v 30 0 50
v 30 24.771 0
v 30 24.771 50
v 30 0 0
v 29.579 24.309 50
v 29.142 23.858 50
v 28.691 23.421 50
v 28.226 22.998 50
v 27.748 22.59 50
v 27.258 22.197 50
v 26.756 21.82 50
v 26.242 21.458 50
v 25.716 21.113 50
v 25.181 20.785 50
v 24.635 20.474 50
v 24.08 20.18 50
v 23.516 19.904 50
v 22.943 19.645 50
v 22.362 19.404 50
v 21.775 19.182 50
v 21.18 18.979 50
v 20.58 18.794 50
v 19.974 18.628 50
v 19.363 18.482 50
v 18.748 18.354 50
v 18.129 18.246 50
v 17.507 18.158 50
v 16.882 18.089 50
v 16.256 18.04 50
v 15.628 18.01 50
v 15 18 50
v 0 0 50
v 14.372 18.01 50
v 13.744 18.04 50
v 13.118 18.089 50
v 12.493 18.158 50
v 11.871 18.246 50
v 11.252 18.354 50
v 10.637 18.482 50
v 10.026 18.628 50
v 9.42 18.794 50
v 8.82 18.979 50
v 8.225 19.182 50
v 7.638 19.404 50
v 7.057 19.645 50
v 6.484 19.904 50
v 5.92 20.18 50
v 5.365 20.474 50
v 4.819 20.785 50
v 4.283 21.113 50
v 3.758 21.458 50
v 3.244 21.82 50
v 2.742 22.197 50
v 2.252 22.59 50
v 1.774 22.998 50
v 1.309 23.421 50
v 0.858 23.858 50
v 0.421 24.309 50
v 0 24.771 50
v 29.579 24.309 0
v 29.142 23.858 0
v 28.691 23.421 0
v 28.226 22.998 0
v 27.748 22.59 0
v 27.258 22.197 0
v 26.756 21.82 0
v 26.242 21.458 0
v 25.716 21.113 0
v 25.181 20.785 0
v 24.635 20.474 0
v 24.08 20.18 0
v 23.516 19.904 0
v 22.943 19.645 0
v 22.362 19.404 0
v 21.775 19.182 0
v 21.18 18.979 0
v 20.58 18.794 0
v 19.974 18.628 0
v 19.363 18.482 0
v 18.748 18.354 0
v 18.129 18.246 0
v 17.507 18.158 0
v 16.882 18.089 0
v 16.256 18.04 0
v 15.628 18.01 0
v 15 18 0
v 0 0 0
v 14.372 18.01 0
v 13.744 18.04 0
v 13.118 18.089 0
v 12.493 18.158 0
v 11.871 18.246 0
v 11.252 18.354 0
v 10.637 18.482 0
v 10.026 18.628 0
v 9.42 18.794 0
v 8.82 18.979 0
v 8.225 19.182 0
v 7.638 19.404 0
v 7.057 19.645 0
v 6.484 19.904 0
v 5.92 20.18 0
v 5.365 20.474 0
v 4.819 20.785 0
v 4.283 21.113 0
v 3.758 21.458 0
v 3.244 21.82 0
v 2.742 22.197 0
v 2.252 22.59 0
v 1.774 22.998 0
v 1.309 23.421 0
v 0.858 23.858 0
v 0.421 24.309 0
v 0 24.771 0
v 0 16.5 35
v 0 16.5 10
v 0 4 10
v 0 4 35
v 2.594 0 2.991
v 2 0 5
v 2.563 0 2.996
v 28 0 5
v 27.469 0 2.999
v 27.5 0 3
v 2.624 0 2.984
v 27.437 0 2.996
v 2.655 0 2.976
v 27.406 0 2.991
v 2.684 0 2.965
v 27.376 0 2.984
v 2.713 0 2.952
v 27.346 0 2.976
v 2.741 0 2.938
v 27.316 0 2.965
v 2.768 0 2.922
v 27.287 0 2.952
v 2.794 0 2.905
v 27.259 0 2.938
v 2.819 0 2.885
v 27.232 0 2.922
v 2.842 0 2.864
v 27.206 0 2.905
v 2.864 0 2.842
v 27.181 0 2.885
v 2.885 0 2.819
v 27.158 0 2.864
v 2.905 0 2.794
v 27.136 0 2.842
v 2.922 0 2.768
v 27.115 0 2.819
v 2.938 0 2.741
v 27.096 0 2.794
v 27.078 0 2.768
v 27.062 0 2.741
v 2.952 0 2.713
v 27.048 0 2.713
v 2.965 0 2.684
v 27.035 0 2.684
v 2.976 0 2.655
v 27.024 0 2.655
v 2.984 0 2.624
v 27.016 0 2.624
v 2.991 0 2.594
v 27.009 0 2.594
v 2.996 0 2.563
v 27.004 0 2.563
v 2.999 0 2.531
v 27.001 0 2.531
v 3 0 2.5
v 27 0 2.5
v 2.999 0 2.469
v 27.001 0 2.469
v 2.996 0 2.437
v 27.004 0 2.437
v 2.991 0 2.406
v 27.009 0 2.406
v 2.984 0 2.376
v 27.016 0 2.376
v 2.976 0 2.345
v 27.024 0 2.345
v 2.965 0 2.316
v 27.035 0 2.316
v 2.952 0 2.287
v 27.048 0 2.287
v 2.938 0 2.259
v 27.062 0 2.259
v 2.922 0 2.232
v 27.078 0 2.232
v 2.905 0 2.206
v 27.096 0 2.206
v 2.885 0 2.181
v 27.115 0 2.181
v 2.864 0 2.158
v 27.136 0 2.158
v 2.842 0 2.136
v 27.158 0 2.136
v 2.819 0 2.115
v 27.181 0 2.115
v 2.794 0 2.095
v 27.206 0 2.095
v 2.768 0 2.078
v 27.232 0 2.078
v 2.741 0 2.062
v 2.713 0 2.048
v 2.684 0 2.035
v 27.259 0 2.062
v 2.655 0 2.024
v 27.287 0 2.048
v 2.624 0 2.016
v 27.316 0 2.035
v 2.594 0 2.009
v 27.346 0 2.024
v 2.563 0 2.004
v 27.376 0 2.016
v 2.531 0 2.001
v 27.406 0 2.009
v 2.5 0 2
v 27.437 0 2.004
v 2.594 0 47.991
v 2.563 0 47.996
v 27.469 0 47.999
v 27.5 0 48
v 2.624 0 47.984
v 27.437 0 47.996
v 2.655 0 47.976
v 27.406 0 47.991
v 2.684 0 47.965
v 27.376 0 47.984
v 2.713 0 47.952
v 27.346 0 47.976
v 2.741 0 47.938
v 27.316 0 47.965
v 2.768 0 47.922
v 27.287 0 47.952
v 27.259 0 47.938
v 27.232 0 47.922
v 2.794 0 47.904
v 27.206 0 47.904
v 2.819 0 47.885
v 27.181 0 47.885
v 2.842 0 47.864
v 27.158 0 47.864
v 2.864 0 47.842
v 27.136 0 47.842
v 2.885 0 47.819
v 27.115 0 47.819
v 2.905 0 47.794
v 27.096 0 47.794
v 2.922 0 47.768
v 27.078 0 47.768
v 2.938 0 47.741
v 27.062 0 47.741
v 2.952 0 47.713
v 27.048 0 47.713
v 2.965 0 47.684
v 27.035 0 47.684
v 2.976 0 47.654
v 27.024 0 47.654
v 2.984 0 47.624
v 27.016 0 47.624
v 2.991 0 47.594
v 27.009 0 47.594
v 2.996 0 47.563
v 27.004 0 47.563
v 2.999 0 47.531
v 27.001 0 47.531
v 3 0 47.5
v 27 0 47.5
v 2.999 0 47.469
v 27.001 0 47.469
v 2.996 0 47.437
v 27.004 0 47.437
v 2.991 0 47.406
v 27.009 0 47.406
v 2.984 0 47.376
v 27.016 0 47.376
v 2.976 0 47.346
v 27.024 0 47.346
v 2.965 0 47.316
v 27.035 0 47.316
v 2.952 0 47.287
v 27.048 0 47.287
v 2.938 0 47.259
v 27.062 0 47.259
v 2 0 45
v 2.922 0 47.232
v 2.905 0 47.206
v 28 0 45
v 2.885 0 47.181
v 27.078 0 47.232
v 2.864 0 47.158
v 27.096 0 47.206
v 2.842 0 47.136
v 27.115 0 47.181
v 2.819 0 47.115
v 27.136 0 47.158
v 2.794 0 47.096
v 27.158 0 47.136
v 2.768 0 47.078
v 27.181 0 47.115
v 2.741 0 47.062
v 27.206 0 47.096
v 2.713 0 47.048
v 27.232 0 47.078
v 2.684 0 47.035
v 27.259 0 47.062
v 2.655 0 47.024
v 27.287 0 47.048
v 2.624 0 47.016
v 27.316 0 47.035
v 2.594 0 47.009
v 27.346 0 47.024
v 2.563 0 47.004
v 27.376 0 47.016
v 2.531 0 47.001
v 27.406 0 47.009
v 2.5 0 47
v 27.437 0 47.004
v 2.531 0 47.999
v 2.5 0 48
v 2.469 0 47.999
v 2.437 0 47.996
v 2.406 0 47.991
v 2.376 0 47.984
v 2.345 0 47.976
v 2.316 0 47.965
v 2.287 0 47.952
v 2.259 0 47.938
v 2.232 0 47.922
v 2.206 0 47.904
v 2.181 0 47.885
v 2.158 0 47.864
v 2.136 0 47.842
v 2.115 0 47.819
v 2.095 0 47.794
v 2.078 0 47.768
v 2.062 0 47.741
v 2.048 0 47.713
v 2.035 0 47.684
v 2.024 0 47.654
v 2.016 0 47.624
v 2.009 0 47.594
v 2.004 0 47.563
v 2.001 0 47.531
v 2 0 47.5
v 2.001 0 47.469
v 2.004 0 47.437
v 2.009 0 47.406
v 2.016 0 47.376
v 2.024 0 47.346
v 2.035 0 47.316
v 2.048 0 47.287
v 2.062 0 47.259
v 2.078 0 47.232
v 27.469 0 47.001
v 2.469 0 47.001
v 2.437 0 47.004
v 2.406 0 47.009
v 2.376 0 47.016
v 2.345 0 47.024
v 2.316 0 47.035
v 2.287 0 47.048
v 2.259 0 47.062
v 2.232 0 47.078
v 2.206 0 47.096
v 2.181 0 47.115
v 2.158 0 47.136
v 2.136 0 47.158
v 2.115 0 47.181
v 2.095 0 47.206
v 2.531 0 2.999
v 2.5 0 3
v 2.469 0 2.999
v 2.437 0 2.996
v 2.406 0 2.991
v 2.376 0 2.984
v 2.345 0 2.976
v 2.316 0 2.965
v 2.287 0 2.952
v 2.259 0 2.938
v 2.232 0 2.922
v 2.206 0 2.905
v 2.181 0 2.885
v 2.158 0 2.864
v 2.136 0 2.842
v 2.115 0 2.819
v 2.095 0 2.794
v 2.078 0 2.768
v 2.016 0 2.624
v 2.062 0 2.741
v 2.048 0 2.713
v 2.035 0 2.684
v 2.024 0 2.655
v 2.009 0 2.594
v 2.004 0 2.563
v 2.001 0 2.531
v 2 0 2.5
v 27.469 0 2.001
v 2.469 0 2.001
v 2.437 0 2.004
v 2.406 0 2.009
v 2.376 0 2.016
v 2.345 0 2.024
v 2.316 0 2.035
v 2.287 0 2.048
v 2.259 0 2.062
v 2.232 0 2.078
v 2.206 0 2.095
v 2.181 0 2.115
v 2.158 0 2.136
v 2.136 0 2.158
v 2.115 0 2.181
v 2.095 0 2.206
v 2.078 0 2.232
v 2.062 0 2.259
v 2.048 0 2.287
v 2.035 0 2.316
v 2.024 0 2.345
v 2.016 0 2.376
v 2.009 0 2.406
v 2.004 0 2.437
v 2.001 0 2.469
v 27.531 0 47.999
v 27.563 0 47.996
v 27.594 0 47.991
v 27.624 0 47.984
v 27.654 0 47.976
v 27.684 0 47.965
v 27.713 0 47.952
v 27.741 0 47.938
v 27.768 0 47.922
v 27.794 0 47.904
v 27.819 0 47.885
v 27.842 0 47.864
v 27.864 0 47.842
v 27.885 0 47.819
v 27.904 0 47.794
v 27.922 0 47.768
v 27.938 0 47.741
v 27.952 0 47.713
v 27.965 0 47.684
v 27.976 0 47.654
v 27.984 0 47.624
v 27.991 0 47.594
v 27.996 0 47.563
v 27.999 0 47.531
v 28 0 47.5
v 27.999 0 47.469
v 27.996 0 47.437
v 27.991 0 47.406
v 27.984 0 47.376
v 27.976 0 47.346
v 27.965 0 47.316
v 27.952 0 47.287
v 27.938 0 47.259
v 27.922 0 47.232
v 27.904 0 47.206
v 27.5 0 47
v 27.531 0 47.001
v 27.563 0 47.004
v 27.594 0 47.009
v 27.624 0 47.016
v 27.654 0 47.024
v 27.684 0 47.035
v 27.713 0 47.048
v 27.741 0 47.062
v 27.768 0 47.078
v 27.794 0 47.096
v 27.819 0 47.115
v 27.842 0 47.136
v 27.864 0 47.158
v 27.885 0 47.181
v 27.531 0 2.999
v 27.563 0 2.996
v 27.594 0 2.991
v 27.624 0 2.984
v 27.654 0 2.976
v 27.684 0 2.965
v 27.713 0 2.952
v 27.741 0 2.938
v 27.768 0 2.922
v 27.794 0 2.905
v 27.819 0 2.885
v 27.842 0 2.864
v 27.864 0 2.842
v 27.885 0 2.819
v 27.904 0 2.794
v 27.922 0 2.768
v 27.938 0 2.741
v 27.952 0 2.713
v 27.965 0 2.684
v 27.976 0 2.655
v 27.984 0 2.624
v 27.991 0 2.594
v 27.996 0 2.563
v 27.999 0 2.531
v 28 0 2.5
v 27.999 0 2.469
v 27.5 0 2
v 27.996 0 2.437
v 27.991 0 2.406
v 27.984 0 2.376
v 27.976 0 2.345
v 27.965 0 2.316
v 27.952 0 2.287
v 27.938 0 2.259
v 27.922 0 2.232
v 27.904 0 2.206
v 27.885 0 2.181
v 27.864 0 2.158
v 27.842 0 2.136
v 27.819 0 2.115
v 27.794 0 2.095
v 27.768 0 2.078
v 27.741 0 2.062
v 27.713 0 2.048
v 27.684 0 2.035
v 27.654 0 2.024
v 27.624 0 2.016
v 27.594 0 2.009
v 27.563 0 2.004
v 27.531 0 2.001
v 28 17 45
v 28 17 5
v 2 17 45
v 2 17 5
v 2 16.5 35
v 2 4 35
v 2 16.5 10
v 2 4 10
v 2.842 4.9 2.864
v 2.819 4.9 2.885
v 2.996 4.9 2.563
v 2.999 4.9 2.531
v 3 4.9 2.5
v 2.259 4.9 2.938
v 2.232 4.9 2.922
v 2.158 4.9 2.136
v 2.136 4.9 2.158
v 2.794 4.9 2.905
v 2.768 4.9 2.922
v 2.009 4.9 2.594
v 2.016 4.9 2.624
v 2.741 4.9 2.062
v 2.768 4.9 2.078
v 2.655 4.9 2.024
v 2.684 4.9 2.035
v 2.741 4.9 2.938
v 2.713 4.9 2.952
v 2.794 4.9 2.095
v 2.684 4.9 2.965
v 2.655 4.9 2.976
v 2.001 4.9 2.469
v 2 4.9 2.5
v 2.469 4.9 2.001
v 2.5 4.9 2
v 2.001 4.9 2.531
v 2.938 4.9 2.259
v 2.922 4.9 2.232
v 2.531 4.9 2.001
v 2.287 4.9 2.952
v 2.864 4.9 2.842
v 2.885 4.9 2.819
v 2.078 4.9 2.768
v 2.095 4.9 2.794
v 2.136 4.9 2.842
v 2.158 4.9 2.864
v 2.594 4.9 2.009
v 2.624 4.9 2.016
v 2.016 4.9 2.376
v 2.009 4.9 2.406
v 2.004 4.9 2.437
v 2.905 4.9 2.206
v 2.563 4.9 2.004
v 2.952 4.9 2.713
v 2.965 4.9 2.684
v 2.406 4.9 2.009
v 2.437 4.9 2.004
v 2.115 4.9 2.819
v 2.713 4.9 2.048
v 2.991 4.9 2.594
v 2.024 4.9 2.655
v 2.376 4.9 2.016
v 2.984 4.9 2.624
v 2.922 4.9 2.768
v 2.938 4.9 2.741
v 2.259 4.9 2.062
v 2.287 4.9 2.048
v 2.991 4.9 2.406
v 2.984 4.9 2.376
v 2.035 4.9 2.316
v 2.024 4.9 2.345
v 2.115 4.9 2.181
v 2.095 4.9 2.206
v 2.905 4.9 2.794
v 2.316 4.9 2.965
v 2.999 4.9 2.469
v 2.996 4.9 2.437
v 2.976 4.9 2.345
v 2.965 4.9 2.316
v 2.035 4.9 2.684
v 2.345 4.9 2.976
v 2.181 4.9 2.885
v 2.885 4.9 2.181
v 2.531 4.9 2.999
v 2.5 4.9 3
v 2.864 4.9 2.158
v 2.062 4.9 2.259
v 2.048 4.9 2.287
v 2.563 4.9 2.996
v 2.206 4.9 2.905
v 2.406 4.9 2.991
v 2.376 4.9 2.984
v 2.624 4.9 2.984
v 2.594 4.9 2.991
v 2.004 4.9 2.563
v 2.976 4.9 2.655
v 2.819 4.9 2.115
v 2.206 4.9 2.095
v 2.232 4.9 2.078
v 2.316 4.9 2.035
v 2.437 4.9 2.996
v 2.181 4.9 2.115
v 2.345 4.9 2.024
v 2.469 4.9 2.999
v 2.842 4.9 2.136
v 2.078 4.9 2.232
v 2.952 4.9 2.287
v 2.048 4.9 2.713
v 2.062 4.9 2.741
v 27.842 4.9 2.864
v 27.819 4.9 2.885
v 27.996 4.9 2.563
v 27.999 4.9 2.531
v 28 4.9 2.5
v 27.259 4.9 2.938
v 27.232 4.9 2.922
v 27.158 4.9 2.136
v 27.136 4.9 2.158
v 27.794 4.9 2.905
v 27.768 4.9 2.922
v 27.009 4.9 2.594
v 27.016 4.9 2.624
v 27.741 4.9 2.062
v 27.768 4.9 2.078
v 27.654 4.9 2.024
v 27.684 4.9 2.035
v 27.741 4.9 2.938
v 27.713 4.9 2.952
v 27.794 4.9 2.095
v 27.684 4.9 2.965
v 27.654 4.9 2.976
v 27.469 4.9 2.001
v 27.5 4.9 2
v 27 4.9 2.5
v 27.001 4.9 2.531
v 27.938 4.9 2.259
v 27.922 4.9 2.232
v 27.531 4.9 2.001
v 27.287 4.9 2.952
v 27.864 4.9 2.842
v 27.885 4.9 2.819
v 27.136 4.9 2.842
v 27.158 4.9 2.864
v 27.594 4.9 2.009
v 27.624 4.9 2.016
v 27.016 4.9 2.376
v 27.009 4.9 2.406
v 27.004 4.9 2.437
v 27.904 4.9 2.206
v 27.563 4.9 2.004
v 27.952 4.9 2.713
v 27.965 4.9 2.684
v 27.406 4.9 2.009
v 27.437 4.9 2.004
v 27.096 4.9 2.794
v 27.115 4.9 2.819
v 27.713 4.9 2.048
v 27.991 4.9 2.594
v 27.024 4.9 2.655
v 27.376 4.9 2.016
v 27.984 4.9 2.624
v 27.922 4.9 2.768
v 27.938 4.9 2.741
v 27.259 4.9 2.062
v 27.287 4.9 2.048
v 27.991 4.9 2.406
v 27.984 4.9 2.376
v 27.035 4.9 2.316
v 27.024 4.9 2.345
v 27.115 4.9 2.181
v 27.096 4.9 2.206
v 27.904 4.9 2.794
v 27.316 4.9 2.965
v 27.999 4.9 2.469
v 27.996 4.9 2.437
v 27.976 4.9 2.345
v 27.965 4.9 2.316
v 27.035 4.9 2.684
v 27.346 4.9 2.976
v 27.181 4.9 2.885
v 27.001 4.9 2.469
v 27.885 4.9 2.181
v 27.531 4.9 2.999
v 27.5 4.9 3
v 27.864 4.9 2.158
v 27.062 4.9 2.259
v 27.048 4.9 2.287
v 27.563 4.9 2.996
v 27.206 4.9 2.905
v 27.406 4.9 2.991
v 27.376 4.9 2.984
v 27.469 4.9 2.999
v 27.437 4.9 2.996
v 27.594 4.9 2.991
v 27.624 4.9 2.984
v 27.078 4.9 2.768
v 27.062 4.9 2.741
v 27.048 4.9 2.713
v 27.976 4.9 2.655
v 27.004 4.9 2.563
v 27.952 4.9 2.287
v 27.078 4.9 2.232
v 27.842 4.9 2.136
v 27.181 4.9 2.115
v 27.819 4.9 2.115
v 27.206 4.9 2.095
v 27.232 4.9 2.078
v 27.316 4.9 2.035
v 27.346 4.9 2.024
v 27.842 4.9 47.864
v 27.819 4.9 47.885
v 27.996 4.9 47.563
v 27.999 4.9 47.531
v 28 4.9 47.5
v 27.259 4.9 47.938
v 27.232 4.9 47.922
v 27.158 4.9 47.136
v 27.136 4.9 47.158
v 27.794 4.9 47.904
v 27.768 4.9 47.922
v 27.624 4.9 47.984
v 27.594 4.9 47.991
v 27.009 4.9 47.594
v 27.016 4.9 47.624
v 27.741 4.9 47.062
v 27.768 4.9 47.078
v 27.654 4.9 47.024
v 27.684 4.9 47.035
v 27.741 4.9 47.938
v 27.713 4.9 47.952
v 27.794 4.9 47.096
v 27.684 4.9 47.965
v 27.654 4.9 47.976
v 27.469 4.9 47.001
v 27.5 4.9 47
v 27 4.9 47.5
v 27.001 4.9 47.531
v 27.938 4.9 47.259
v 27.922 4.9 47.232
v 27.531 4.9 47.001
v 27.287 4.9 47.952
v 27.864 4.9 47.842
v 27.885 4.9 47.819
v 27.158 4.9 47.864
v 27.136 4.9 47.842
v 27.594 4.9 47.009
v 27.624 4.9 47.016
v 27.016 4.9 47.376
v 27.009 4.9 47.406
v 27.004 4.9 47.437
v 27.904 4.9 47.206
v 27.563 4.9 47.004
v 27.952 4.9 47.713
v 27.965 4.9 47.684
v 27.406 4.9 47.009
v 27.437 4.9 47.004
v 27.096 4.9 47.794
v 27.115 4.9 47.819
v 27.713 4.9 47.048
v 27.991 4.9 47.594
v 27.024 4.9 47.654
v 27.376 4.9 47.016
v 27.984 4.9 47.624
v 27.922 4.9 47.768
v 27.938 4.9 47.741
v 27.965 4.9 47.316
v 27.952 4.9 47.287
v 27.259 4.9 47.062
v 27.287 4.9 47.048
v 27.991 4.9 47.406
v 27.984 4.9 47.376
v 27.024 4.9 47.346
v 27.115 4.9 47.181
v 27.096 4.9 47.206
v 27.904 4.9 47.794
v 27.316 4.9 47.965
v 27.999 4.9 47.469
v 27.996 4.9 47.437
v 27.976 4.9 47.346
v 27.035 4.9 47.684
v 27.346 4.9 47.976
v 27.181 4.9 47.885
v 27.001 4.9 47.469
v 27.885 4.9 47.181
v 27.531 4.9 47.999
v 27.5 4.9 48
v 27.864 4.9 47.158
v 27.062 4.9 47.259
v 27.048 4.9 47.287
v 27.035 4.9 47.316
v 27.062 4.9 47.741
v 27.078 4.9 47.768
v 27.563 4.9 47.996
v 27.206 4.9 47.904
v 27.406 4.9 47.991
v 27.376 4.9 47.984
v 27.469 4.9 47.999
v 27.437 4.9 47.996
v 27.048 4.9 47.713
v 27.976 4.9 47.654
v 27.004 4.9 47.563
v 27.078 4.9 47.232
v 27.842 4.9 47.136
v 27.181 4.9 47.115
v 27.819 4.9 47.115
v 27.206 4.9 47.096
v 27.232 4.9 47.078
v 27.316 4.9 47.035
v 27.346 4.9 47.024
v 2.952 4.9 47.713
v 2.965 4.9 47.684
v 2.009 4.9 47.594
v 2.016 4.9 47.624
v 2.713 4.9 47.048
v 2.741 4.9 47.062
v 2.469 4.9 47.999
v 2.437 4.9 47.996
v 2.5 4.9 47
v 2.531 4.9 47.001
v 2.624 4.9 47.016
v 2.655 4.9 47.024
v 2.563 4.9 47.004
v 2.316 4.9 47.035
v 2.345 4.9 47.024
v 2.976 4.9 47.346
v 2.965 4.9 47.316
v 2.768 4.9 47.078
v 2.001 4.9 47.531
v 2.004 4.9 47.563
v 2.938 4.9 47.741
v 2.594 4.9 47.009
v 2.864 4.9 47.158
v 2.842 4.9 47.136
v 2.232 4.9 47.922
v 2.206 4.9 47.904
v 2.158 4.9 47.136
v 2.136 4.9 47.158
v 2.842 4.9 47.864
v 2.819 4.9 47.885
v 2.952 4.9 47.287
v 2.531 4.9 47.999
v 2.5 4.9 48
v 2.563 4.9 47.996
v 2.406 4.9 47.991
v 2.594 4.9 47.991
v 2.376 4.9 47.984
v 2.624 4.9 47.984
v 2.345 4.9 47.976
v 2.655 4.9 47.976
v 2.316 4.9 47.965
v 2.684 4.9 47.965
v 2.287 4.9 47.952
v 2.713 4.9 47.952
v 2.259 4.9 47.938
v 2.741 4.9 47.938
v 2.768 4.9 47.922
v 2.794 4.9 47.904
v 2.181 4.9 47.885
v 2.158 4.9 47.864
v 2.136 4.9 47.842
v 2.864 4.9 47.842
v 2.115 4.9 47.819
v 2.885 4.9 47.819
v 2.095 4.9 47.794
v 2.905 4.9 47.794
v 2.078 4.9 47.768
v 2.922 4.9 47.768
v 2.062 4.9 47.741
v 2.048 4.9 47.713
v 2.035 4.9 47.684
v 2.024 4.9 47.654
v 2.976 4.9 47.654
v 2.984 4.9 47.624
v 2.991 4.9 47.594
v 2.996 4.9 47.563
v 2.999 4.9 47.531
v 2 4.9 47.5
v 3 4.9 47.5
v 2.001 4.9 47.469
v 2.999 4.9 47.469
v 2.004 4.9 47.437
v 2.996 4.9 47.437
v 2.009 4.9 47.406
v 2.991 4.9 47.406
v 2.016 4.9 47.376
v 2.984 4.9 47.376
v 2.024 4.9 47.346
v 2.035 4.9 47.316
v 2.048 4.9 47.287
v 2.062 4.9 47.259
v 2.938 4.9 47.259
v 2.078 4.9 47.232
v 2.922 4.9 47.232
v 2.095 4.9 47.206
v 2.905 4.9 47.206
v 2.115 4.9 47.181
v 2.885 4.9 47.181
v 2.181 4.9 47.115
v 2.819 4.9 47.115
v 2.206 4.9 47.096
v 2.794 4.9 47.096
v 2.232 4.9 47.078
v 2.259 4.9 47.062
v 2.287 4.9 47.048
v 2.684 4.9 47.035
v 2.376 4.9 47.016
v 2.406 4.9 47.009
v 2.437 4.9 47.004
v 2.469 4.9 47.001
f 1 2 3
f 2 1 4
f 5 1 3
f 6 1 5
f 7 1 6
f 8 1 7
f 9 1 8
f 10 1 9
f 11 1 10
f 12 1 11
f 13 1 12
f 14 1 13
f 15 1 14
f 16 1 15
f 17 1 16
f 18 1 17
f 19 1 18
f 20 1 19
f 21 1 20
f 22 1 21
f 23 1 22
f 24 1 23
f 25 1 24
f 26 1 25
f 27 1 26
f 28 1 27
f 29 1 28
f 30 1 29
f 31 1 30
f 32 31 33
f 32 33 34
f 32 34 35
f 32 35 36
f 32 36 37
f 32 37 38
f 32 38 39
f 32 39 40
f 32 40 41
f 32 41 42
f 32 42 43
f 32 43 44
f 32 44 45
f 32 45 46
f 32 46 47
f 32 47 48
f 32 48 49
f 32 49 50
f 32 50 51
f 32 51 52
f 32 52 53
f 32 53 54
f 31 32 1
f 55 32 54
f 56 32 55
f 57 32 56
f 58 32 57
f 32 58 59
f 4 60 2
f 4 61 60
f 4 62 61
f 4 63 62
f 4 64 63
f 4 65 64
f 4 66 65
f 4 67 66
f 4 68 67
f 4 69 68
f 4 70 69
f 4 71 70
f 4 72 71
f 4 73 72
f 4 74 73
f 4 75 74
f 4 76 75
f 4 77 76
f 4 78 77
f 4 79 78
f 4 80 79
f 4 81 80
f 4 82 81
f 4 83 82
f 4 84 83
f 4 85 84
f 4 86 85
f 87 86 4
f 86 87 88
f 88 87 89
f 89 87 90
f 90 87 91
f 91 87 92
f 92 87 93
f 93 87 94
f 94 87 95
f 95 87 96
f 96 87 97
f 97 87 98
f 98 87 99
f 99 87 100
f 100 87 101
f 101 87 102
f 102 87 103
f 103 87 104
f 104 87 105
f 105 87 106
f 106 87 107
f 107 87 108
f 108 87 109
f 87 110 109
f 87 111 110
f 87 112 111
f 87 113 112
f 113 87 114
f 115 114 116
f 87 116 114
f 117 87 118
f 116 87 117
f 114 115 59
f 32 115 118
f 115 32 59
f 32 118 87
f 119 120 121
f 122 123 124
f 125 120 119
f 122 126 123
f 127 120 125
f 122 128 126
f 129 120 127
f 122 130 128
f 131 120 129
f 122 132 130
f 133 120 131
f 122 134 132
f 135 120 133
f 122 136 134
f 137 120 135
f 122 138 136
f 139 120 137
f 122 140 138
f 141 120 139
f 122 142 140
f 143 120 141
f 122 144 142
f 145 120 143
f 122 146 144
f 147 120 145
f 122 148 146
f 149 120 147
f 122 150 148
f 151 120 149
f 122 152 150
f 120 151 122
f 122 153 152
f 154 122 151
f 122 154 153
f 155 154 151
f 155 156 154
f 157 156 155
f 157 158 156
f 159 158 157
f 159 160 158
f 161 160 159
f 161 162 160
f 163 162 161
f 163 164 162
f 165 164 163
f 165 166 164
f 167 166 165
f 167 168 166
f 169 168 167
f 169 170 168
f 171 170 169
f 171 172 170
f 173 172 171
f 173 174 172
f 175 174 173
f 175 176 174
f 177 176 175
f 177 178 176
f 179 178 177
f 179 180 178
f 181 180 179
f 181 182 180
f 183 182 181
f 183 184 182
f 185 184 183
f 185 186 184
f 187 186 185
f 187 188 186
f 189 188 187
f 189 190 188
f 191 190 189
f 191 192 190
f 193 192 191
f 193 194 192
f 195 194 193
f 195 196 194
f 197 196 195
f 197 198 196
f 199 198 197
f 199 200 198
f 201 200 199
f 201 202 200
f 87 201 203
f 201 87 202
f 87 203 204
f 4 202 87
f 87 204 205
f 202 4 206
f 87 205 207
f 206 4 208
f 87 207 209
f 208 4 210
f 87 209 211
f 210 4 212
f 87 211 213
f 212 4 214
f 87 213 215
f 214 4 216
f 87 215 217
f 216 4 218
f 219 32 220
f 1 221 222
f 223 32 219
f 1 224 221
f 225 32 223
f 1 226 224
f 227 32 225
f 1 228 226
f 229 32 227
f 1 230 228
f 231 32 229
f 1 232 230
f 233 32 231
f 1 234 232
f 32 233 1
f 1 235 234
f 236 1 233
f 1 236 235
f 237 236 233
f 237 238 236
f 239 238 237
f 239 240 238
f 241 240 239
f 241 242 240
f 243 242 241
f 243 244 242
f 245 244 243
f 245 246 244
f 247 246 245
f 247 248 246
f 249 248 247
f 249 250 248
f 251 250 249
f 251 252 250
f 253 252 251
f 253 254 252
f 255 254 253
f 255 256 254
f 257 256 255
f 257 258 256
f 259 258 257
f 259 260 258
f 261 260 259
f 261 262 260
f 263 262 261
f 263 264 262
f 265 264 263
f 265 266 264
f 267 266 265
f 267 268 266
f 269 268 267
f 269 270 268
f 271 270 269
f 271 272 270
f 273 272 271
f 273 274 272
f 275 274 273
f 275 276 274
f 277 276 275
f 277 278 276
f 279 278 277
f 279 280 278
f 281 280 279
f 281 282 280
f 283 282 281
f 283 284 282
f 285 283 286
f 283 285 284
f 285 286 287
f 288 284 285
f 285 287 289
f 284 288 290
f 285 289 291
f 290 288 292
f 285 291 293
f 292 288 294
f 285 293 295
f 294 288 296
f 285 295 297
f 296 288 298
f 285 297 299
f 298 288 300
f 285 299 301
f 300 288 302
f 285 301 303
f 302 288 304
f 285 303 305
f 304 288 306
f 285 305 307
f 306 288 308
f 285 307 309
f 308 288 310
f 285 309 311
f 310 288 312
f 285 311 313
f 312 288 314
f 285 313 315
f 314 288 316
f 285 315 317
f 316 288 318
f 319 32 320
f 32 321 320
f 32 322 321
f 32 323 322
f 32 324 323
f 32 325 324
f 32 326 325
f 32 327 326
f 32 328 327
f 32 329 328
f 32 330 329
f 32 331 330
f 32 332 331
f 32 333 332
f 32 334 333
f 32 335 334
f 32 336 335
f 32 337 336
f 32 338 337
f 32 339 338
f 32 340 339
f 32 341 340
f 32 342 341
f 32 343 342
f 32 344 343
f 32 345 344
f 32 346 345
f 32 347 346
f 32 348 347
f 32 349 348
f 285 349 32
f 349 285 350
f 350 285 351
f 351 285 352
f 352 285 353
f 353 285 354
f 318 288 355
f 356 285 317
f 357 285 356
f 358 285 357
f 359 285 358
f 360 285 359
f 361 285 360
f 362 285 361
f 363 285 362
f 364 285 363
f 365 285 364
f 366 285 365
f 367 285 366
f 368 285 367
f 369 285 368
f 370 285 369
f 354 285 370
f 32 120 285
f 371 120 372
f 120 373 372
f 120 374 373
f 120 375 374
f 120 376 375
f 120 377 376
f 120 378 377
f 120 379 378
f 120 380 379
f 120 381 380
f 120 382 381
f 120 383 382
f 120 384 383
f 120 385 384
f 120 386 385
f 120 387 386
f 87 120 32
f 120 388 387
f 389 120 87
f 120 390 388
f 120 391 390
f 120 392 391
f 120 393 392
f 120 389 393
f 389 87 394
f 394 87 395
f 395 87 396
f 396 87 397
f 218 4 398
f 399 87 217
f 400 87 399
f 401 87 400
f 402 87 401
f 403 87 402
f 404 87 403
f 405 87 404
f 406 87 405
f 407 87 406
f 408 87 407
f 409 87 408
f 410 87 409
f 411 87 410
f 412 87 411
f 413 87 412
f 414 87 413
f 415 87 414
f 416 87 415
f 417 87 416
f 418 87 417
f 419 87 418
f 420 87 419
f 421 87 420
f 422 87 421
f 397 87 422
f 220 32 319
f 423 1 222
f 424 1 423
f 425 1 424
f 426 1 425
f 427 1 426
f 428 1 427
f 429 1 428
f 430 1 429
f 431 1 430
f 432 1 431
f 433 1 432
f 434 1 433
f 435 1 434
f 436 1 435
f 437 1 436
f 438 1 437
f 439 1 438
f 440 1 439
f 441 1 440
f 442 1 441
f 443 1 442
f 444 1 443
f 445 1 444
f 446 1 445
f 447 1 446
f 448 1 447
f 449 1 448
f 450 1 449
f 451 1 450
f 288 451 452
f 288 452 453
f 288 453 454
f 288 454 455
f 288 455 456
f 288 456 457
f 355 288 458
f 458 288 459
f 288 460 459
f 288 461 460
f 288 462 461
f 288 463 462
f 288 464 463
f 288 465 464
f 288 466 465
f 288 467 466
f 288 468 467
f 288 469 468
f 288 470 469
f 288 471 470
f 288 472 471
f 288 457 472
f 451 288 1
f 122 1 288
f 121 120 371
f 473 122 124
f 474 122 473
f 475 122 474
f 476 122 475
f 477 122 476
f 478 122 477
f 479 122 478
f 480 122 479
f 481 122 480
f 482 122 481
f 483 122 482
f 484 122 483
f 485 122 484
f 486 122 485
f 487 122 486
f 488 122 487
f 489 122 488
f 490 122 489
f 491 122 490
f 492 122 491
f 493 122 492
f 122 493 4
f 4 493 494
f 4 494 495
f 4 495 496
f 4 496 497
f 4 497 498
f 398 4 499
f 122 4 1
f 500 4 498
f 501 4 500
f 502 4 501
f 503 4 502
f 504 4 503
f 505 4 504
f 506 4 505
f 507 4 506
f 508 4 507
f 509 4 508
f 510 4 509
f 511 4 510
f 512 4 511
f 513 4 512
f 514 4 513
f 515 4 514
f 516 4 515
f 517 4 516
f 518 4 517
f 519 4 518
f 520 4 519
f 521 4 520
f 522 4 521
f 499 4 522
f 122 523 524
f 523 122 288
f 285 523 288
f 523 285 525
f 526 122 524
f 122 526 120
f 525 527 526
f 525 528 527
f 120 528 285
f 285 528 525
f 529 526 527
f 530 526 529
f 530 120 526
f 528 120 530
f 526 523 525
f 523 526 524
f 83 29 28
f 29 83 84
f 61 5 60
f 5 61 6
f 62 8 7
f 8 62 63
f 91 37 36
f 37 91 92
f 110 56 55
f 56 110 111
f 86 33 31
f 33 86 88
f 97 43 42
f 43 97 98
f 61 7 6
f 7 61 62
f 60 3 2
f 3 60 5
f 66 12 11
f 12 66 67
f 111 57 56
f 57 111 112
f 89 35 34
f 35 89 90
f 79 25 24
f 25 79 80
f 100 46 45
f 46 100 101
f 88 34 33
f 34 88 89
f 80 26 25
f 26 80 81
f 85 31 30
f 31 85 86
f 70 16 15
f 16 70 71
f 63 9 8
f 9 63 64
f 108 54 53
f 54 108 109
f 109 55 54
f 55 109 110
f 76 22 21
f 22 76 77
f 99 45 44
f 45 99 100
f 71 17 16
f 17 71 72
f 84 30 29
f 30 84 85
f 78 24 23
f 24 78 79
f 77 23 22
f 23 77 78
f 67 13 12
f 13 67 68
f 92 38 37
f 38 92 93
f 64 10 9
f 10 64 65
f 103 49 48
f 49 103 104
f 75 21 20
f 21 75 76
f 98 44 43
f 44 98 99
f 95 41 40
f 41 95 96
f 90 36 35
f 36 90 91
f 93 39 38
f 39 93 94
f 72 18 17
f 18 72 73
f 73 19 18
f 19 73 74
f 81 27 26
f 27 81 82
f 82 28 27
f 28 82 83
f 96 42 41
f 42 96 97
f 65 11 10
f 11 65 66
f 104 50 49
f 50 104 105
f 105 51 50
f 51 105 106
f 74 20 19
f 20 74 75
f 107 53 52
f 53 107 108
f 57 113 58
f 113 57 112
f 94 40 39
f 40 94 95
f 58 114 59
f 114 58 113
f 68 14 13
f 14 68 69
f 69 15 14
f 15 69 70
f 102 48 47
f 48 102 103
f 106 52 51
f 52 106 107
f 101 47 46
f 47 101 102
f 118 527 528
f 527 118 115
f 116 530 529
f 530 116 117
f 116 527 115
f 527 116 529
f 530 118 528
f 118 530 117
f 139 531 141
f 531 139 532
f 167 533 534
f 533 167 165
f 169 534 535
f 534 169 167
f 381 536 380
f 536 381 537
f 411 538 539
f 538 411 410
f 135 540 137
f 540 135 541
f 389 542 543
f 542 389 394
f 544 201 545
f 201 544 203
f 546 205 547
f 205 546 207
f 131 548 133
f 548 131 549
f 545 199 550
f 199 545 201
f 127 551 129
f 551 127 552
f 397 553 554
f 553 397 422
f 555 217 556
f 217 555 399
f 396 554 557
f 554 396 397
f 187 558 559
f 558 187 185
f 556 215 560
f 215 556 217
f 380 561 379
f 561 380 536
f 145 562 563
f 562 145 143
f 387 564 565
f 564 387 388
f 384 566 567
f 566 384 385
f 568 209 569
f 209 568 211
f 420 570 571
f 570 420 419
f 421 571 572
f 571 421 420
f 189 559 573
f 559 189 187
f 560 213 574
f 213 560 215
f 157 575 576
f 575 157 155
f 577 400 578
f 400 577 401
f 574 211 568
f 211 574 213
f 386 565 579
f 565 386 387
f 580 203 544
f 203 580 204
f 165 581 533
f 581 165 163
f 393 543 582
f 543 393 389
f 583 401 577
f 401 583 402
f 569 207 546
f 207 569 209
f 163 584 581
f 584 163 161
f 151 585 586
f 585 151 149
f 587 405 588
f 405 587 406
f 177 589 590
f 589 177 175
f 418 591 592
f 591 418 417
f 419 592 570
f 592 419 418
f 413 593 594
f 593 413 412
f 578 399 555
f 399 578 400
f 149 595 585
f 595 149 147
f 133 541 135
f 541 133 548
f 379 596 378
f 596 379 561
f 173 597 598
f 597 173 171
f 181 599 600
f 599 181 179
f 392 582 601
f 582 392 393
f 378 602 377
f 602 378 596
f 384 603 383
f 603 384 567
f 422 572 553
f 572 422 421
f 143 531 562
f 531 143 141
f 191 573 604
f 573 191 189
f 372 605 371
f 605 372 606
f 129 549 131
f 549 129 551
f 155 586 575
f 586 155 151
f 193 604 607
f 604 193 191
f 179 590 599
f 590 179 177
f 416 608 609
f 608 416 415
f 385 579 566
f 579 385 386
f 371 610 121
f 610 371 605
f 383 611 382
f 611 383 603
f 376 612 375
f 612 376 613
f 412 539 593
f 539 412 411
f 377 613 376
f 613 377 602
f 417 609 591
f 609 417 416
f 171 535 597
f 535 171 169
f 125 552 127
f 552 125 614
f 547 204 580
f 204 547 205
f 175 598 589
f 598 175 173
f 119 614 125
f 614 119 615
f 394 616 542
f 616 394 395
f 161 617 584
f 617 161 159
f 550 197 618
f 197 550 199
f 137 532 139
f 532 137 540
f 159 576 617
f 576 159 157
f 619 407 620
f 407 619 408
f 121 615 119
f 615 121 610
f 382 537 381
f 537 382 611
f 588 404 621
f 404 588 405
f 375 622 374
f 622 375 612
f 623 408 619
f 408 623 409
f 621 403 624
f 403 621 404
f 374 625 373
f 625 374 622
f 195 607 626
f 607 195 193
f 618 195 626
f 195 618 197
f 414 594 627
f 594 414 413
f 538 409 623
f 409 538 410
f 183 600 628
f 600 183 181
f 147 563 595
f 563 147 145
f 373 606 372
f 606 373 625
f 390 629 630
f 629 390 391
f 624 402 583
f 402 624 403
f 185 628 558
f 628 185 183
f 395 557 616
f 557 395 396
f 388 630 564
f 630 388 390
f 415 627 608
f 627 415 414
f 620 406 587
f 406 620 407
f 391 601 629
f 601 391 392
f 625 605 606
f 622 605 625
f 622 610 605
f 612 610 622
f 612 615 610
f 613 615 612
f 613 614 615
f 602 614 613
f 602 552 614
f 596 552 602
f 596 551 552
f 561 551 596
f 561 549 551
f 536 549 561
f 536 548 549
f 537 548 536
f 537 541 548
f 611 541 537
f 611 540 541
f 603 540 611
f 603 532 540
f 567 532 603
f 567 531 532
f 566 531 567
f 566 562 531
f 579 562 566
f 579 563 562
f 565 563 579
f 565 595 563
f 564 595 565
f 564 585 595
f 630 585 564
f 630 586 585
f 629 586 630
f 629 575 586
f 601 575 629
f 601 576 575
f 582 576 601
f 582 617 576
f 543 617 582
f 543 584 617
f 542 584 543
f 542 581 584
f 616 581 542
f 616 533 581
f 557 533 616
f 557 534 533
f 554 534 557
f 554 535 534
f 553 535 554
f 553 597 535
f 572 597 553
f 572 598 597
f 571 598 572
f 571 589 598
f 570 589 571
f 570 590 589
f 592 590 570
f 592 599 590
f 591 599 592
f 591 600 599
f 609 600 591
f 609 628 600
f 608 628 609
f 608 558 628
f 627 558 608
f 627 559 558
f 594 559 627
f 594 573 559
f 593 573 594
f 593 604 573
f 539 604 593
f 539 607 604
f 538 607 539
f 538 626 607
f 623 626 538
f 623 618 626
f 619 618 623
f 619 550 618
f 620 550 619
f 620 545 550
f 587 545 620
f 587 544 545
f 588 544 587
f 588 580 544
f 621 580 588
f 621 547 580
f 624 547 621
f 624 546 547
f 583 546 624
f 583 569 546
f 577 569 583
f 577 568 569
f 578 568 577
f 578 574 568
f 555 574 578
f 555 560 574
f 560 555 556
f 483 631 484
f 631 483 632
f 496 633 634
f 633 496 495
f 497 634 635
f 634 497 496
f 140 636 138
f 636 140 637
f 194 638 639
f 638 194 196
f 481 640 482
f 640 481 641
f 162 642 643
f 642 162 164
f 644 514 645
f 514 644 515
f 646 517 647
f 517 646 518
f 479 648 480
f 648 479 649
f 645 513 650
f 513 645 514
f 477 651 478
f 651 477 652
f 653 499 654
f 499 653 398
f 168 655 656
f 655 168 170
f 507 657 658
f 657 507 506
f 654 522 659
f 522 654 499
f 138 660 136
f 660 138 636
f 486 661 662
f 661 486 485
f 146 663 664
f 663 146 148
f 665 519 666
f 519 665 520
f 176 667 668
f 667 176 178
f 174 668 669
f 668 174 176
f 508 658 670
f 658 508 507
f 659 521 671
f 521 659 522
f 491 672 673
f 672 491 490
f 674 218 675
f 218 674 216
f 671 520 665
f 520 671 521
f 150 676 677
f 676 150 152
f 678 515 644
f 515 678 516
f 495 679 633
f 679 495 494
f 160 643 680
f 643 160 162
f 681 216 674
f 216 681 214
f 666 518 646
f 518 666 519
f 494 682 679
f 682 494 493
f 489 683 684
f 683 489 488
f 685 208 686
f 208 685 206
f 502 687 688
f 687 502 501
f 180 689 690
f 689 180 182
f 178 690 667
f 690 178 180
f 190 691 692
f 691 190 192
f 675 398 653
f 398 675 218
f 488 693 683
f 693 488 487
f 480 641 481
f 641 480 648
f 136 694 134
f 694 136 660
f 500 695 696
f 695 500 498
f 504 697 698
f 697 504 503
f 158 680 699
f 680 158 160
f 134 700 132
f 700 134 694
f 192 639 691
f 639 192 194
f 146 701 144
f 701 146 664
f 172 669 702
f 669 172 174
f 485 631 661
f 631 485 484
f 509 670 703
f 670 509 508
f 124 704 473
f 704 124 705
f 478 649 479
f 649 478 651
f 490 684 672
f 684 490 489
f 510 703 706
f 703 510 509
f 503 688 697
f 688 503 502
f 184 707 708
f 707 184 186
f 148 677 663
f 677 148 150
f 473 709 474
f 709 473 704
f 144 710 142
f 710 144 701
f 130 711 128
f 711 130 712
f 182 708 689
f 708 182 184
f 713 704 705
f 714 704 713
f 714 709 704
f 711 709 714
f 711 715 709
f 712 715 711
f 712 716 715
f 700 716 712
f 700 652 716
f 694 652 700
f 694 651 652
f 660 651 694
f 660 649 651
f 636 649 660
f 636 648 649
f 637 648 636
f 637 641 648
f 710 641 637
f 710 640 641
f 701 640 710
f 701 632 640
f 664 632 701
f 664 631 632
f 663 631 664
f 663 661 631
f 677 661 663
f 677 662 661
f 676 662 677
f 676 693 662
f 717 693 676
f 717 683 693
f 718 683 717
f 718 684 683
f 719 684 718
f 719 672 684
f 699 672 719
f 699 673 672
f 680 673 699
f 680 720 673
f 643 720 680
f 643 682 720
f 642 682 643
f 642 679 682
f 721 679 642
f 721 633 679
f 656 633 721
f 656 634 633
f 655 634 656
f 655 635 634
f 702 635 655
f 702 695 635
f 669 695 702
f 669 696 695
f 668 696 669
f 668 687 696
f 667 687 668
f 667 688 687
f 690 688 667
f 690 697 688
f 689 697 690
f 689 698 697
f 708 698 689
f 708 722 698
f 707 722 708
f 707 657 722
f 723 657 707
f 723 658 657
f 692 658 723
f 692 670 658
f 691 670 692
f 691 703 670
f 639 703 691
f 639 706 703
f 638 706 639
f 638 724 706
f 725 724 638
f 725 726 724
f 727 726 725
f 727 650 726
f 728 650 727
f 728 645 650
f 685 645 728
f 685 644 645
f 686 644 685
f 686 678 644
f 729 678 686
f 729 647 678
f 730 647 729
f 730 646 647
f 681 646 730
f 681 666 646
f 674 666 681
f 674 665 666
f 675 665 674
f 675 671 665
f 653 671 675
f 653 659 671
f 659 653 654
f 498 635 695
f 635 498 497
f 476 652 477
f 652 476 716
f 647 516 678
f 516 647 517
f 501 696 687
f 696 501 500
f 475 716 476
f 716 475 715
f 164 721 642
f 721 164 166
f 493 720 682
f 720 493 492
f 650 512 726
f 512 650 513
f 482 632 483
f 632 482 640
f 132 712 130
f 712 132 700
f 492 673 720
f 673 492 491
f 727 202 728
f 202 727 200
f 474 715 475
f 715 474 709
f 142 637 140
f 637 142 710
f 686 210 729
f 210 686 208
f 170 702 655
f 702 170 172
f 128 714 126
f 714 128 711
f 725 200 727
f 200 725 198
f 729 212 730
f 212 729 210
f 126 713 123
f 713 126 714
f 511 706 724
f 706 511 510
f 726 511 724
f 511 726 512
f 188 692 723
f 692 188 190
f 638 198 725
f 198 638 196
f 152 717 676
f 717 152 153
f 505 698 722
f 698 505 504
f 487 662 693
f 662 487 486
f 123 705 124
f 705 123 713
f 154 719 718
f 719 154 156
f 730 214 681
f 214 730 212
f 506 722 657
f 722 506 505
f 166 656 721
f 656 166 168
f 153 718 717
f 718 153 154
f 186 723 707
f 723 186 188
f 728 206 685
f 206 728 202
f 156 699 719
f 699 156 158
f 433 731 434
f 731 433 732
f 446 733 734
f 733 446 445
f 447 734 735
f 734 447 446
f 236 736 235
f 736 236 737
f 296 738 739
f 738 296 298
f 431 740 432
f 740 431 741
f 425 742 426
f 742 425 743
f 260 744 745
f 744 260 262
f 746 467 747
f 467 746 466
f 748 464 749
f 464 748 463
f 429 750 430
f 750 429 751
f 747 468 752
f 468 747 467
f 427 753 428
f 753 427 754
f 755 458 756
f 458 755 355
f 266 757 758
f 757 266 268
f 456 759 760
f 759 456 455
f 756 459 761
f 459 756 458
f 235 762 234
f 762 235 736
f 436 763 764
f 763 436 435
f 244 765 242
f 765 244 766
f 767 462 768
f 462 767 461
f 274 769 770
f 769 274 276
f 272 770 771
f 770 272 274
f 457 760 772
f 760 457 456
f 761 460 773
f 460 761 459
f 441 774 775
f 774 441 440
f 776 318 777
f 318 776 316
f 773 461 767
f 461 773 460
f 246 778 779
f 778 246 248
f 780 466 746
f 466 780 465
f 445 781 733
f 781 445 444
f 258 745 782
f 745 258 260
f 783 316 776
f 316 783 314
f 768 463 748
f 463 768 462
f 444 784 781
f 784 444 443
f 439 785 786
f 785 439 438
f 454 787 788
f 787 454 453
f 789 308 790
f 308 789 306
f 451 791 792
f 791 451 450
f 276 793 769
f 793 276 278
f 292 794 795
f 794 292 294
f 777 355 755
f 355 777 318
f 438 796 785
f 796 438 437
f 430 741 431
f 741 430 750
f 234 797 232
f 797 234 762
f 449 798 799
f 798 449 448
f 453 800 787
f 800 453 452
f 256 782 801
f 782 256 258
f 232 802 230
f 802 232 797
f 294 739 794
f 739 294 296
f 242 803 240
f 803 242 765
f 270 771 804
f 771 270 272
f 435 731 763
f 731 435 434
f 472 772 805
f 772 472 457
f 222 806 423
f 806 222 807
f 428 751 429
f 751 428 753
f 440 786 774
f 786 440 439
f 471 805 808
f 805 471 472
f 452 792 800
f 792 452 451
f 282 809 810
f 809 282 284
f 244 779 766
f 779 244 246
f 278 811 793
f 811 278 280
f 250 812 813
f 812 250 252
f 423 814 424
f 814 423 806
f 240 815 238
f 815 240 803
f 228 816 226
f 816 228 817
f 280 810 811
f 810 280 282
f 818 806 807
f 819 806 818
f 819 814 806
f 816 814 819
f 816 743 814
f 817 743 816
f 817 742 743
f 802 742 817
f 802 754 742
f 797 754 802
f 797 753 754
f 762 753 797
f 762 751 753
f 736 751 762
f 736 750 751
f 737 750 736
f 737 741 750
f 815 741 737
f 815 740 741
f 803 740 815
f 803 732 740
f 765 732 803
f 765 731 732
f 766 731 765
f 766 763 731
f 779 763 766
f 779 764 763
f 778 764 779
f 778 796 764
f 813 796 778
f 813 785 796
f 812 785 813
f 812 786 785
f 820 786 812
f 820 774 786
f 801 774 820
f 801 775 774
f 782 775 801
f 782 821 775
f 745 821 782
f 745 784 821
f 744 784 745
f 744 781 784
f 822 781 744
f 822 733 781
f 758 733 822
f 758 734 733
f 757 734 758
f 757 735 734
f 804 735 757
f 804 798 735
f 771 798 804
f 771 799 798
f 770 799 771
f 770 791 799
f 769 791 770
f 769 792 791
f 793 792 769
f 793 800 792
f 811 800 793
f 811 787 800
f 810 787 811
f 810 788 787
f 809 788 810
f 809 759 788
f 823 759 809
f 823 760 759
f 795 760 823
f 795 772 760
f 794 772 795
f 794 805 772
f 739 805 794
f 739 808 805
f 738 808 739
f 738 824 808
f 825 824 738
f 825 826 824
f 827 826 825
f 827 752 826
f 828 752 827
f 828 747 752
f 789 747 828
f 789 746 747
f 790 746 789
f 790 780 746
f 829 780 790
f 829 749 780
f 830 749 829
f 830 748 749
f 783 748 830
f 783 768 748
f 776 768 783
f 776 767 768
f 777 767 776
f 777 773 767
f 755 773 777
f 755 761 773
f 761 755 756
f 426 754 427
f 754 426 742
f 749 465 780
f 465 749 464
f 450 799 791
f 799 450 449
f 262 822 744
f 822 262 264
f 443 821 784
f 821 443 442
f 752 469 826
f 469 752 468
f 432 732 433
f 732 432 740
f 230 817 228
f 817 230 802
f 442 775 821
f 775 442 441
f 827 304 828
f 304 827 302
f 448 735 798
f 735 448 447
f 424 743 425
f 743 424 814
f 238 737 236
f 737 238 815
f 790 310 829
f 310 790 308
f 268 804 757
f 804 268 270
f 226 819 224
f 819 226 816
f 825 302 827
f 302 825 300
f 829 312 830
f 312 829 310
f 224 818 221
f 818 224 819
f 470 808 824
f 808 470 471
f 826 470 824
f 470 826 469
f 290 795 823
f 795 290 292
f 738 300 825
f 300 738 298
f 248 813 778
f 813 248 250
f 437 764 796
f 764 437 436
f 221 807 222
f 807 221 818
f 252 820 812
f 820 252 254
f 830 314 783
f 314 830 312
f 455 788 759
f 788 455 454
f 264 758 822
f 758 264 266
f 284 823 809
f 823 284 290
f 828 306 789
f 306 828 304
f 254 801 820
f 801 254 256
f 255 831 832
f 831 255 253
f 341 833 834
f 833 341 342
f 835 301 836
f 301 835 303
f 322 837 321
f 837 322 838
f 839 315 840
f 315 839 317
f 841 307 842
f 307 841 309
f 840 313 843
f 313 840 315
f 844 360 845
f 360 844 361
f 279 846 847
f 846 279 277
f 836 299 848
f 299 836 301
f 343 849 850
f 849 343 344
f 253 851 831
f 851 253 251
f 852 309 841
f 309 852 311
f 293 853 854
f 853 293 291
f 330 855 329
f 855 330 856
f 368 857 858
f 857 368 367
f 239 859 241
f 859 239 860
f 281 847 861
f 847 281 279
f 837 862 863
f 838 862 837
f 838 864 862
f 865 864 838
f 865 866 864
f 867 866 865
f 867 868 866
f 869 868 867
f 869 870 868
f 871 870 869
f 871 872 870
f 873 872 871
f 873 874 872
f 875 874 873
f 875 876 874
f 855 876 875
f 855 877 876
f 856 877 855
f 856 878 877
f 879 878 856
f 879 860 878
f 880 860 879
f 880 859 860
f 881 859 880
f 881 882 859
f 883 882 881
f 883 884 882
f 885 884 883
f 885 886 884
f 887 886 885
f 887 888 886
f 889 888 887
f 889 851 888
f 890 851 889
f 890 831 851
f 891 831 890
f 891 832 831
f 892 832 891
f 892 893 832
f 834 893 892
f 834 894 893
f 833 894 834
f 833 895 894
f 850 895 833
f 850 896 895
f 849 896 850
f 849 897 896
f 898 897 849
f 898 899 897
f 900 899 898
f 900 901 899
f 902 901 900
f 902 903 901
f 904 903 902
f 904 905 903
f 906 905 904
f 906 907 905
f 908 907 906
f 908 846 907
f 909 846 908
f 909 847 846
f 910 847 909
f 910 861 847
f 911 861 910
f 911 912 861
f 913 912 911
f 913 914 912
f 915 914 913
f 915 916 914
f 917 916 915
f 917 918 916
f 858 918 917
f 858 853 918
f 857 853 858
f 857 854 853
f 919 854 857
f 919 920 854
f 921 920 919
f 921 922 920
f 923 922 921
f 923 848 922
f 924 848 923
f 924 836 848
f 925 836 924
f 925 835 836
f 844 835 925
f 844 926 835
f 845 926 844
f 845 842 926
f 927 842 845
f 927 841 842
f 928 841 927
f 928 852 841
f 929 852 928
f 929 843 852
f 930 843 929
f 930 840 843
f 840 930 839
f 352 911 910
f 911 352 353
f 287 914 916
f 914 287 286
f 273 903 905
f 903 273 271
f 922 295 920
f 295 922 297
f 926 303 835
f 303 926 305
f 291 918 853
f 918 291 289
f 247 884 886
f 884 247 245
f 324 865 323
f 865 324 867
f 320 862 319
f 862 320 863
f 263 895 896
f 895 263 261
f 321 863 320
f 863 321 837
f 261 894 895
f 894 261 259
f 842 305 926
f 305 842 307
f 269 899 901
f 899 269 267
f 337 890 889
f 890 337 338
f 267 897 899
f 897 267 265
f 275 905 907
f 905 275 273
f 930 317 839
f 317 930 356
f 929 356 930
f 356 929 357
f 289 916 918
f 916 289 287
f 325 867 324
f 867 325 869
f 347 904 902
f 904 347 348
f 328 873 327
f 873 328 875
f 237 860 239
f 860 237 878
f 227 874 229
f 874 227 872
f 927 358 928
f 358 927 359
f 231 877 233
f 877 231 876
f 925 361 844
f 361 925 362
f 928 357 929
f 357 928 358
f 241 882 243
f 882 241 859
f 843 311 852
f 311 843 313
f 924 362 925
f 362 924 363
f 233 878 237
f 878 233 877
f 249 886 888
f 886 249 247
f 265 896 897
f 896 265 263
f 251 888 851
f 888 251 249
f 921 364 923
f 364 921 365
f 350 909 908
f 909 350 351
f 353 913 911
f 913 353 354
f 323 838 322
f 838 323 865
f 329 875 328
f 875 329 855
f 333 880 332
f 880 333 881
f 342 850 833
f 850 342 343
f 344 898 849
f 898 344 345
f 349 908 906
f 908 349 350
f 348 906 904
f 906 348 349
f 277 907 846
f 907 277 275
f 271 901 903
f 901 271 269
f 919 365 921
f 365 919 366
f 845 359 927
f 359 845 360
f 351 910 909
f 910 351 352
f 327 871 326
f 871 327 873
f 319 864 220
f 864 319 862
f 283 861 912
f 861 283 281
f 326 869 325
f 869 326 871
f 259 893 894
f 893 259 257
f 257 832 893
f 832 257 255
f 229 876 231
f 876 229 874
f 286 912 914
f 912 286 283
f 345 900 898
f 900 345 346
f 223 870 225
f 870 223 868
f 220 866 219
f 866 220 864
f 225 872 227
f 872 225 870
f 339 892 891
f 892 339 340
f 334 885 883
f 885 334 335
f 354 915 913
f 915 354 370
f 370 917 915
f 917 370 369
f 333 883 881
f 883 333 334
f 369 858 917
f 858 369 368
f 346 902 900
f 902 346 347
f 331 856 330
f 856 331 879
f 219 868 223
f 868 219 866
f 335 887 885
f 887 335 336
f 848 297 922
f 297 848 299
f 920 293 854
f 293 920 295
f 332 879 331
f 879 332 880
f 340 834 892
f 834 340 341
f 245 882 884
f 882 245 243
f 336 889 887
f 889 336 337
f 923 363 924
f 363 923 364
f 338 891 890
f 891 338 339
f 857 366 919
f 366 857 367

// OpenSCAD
difference () {
  cube(size=[30, 25, 50]);
  translate([2,-1,5]) cube(size=[26, 18, 40]);  // hollow cube
  translate([15, 38, -1]) cylinder(h=93, r=20, $fn=200);  // clarinet body
  translate([-7, 4, 10]) cube(size=[22, 12.5, 25]);  // servo
  translate([2.5, 4.9, 2.5]) rotate([90,0,0]) cylinder(h=5, r=0.5, $fn=100);
  translate([27.5, 4.9, 2.5]) rotate([90,0,0]) cylinder(h=5, r=0.5, $fn=100);
  translate([27.5, 4.9, 47.5]) rotate([90,0,0]) cylinder(h=5, r=0.5, $fn=100);
  translate([2.5, 4.9, 47.5]) rotate([90,0,0]) cylinder(h=5, r=0.5, $fn=100);
};
